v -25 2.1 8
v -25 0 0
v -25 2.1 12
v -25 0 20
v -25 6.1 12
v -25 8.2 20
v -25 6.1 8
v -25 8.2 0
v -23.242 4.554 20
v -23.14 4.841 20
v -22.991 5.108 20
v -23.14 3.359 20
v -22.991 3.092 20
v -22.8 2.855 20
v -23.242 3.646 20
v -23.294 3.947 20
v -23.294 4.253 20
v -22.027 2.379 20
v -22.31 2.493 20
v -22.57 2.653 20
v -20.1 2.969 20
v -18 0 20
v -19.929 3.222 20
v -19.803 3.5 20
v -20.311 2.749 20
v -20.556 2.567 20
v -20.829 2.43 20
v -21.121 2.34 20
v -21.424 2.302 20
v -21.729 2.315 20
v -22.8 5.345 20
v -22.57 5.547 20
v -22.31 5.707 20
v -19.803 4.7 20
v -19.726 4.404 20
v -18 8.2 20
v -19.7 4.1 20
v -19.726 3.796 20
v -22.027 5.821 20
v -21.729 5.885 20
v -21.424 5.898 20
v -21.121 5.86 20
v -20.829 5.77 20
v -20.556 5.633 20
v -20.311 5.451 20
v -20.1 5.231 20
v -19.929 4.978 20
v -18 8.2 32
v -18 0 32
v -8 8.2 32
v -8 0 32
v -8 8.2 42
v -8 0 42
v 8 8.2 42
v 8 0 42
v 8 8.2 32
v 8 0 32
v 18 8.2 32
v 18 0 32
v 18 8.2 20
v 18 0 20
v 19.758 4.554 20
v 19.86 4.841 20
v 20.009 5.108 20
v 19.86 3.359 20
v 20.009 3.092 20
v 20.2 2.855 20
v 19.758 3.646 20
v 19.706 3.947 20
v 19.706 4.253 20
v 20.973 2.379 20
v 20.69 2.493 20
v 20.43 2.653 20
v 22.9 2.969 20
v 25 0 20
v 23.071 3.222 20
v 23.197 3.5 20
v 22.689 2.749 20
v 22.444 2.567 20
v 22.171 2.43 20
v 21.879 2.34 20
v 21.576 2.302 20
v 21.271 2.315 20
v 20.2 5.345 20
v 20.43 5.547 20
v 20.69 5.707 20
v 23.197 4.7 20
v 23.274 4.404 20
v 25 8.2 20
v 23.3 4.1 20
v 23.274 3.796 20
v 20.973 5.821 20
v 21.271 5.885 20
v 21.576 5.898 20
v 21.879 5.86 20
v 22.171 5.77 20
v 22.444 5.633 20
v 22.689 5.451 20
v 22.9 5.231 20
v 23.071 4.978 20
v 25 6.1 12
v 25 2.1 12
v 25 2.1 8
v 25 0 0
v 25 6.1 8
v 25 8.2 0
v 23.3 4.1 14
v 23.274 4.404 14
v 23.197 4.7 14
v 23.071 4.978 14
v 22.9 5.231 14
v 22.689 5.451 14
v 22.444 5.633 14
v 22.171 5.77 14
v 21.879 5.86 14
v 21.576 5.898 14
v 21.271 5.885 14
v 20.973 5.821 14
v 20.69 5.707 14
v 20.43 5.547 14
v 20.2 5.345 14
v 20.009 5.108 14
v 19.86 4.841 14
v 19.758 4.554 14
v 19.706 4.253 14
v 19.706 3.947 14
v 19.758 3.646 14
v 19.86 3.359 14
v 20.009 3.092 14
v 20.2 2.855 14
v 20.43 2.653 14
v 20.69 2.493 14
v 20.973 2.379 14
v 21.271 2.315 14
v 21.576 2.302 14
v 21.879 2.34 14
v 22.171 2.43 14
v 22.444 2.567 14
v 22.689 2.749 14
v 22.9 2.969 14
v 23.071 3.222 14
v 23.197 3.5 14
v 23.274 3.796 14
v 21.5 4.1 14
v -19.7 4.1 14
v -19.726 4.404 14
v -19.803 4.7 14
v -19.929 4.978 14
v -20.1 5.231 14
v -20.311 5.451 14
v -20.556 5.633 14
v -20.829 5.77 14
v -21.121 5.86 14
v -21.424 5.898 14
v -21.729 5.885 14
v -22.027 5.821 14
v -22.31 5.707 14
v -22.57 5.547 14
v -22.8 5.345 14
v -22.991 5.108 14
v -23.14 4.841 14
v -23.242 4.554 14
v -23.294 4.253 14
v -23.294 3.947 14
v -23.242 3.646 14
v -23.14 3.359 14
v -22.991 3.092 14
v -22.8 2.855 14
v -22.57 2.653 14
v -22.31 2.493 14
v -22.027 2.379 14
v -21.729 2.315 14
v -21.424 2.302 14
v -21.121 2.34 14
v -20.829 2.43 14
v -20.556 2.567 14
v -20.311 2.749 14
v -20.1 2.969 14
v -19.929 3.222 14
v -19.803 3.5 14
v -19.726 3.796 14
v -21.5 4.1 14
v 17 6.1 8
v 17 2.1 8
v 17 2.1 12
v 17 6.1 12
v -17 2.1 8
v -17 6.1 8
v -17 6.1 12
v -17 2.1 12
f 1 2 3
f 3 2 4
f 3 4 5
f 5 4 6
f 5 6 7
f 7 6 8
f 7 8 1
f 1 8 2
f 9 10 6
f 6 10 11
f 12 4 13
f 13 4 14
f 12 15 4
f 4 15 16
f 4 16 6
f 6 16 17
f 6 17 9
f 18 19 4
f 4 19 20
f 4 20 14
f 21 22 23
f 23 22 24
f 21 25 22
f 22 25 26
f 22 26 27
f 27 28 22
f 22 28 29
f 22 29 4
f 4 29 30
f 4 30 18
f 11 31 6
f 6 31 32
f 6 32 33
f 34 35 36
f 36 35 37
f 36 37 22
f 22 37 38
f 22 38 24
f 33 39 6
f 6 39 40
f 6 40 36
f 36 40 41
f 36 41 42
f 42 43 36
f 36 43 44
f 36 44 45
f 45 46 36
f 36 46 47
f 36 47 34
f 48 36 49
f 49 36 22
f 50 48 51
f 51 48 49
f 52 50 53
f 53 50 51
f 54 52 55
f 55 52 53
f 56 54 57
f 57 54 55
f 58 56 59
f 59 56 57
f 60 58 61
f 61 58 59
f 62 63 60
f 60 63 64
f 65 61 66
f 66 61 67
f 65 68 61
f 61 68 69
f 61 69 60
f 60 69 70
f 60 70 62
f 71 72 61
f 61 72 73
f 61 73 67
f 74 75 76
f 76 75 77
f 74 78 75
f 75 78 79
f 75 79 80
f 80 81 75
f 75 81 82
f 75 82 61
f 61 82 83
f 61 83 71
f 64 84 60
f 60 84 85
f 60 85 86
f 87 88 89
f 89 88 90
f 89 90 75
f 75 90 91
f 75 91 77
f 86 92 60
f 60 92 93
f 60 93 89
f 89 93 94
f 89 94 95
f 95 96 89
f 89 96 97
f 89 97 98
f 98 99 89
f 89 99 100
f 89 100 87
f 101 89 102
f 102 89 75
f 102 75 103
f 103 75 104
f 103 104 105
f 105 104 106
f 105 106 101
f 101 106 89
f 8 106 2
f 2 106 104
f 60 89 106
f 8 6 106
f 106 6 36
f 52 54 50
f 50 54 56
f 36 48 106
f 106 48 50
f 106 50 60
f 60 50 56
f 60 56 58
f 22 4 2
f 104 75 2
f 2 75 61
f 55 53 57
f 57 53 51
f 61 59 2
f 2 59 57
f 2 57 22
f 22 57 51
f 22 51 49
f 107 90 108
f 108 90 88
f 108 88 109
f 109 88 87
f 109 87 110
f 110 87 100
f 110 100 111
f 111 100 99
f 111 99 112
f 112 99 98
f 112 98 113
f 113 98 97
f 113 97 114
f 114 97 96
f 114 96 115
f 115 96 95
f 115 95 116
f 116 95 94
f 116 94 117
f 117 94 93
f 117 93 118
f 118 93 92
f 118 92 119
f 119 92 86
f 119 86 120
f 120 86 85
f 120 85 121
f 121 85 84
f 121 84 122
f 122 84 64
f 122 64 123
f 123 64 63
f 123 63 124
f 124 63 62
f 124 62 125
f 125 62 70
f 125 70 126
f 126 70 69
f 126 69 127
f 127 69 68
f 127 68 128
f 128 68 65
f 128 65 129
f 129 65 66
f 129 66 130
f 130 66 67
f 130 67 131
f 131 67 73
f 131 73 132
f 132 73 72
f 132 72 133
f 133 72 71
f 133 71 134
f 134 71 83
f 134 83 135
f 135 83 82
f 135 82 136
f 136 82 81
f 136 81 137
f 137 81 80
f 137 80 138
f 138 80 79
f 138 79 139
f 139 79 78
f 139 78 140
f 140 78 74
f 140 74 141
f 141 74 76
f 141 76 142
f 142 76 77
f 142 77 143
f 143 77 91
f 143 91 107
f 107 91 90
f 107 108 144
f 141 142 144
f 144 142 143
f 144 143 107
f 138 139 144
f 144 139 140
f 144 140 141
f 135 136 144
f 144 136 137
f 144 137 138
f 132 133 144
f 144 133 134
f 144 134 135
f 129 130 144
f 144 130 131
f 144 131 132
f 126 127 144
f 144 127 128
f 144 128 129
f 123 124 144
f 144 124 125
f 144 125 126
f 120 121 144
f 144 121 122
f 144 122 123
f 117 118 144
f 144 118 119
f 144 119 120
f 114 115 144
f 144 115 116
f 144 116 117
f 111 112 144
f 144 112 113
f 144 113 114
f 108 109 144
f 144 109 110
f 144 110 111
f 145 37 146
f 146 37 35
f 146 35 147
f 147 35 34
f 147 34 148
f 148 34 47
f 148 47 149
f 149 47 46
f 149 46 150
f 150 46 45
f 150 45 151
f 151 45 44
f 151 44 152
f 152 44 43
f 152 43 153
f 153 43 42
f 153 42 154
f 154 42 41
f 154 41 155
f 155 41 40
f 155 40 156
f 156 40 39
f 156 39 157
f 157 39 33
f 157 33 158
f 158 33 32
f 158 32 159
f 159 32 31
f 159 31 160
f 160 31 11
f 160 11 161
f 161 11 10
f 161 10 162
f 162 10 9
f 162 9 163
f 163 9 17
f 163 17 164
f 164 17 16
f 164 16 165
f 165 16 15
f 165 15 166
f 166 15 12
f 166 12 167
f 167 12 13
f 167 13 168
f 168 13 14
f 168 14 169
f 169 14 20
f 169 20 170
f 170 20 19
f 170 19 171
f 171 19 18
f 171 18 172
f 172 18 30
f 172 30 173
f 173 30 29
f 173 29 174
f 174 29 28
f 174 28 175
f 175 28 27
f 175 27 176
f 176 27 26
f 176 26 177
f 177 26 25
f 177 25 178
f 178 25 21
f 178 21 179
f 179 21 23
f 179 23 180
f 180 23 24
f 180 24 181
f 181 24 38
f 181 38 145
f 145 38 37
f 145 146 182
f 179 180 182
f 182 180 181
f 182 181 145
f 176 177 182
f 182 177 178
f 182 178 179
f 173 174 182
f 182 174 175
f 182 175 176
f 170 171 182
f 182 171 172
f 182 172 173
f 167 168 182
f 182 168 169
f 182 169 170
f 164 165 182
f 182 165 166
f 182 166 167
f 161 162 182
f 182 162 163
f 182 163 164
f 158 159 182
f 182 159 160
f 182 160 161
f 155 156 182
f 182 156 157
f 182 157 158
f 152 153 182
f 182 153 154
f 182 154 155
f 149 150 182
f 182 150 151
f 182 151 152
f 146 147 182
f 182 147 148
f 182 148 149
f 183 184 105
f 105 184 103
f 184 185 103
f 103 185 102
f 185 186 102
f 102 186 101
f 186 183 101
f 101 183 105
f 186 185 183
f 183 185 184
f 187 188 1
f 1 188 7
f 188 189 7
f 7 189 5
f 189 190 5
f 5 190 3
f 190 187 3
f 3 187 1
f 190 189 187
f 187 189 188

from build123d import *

# Parameters (mm, degrees)
BODY_DEPTH   = 8.2
SKETCH2_R    = 1.8
SCREWS_DEPTH = 6
SKETCH3_W    = 4
SKETCH3_H    = 4
WIRE_R_DEPTH = 8
SKETCH4_W    = 4
SKETCH4_H    = 4
WIRE_L_DEPTH = 8


with BuildPart() as part:
    # Sketch1 → Body (new body)
    with BuildSketch(Plane(origin=(0, 0, 0), x_dir=(1, 0, 0), z_dir=(0, 1, 0))):
        Polygon((-25, 0), (25, 0), (25, -20), (18, -20), (18, -32), (8, -32), (8, -42), (-8, -42), (-8, -32), (-18, -32), (-18, -20), (-25, -20), align=None)
    extrude(amount=BODY_DEPTH)

    # Sketch2 → Screws (cut)
    with BuildSketch(Plane.XY.offset(20)):
        with Locations((-21.5, 4.1)):
            Circle(SKETCH2_R)
        with Locations((21.5, 4.1)):
            Circle(SKETCH2_R)
    extrude(amount=-SCREWS_DEPTH, mode=Mode.SUBTRACT)

    # Sketch3 → Wire_R (cut)
    with BuildSketch(Plane(origin=(25, 0, 0), x_dir=(0, 0, -1), z_dir=(1, 0, 0))):
        with Locations((-10, 4.1)):
            Rectangle(SKETCH3_W, SKETCH3_H)
    extrude(amount=-WIRE_R_DEPTH, mode=Mode.SUBTRACT)

    # Sketch4 → Wire_L (cut)
    with BuildSketch(Plane(origin=(-25, 0, 0), x_dir=(0, 0, -1), z_dir=(1, 0, 0))):
        with Locations((-10, 4.1)):
            Rectangle(SKETCH4_W, SKETCH4_H)
    extrude(amount=WIRE_L_DEPTH, mode=Mode.SUBTRACT)


solid = part.part
